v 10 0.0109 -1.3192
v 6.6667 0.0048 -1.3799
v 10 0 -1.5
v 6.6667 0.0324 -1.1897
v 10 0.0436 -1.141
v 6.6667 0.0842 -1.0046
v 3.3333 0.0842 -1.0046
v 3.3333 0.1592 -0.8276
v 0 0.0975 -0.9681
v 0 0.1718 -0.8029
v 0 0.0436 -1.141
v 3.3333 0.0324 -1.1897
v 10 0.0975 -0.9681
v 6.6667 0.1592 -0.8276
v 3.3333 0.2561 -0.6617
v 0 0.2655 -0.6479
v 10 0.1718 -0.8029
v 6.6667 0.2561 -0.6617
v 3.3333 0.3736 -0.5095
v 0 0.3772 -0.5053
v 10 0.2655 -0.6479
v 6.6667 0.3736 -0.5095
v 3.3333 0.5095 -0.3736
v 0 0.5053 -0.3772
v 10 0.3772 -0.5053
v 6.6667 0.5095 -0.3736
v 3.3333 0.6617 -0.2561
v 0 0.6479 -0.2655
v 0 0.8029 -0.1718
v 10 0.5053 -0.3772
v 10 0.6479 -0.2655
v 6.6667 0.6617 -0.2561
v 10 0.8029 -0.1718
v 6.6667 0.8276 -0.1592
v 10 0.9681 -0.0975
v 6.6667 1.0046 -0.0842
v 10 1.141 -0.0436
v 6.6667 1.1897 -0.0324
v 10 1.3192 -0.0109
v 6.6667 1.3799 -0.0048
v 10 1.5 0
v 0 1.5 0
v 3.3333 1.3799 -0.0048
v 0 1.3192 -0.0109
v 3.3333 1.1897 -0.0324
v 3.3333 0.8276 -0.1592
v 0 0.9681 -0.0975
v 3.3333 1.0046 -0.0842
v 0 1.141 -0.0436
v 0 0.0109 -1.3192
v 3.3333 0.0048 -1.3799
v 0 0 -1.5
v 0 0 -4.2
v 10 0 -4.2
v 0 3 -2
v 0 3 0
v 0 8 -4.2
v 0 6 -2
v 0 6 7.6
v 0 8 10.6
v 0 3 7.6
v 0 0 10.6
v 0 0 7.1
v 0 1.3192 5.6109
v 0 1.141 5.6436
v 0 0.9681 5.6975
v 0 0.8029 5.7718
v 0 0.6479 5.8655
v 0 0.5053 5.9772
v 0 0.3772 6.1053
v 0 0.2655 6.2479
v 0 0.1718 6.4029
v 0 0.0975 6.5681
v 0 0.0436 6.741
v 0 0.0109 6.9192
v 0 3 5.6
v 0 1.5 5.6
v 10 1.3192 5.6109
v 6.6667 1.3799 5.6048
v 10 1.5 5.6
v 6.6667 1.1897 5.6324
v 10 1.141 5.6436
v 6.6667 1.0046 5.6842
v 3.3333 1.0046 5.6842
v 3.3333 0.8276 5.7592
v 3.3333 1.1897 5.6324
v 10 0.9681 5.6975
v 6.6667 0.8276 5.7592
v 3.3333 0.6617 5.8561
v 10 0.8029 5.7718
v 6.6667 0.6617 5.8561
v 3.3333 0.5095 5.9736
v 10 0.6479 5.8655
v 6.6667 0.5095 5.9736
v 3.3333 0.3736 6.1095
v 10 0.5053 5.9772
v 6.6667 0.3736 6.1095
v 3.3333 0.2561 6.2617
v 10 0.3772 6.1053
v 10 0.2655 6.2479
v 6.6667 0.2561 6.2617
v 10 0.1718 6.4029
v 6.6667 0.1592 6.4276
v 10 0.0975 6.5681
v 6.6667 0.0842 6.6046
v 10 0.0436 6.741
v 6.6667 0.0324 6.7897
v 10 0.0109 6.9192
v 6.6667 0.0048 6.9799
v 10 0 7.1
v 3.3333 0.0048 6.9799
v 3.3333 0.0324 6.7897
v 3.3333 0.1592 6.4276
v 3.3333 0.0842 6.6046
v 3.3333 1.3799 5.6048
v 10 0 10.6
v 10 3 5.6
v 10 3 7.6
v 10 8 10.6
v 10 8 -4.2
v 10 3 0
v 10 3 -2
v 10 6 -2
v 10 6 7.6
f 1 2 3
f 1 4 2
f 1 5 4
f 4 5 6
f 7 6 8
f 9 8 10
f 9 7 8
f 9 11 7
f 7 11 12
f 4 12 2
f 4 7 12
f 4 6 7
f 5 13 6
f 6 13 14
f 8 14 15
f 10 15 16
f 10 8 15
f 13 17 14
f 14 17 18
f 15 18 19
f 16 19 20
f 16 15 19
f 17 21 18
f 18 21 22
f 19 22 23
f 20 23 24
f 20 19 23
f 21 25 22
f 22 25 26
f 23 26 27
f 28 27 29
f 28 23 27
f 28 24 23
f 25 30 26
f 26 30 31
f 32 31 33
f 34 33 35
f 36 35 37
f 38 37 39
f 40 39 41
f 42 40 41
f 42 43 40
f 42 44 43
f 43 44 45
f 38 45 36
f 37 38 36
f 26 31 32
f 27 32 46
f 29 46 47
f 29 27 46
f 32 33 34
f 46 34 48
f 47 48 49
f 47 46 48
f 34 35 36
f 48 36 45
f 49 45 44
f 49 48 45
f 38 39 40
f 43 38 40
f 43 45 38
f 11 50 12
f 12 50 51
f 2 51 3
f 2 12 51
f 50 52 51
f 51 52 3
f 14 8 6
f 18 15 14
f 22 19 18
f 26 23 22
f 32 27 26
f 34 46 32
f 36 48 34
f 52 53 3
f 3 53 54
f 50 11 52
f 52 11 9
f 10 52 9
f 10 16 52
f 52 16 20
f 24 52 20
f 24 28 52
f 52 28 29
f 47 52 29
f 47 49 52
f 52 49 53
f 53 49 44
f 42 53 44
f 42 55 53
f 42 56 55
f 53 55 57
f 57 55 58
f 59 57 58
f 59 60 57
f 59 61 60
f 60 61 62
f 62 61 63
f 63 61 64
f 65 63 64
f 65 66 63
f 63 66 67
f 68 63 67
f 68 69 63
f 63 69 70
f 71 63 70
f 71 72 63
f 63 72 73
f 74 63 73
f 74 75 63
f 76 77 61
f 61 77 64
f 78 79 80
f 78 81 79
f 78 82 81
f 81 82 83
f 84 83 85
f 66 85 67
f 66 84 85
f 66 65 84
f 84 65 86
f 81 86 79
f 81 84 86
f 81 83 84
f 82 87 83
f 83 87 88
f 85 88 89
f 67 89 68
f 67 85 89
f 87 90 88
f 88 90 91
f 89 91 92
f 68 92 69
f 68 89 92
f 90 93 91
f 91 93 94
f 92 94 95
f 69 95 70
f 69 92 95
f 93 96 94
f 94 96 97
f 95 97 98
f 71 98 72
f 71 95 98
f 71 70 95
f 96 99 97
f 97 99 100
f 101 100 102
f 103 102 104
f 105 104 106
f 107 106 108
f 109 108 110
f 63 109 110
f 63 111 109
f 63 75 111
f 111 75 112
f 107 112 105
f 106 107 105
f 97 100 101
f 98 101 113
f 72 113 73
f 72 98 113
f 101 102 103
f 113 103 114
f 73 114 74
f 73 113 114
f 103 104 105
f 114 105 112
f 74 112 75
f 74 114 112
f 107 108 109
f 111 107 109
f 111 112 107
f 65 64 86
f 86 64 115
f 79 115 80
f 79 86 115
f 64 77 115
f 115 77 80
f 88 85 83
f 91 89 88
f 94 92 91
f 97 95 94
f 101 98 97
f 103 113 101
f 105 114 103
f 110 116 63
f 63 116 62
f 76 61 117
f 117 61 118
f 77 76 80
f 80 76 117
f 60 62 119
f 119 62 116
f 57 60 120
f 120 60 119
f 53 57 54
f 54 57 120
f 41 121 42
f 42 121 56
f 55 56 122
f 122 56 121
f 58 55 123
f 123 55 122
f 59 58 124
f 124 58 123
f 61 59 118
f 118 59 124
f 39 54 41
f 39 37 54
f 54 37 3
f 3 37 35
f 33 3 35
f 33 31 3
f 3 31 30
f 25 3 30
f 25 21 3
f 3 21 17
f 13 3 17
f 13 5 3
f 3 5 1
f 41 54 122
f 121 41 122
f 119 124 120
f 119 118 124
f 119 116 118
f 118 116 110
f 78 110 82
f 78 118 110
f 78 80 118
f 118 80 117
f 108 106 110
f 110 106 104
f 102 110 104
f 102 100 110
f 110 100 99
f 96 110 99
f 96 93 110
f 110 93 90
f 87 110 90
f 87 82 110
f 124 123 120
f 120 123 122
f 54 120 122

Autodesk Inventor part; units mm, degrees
ref_plane "YZ Plane" through (0, 0, 0) normal (1, 0, 0) x (0, 1, 0)
ref_plane "XZ Plane" through (0, 0, 0) normal (0, 1, 0) x (-1, 0, 0)
ref_plane "XY Plane" through (0, 0, 0) normal (0, 0, 1) x (1, 0, 0)
sketch "Sketch4" plane through (0, 0, 0) normal (1, 0, 0) x (0, 1, 0)
  line L0 (6, 7.6) -> (3, 7.6)
  line L1 (3, 7.6) -> (3, 5.6)
  line L2 (3, 5.6) -> (0, 5.6)
  line L3 (0, 0) -> (3, 0)
  line L4 (3, 0) -> (3, -2)
  line L5 (3, -2) -> (6, -2)
  line L6 (6, -2) -> (6, 7.6)
  line L7 (8, 10.6) -> (0, 10.6)
  line L8 (0, 10.6) -> (0, 7.8)
  line L9 (0, 7.8) -> (0, 7.8)
  line L10 (0, -4.2) -> (8, -4.2)
  line L11 (8, -4.2) -> (8, 10.6)
  line L12 (0, 7.8) -> (0, 5.6)
  line L13 (0.2401, 0) -> (0, 0)
  line L14 (0, 0) -> (0, -4.2)
  point P0 (4.5, 7.6)
  dimension "d23" = 2
  dimension "d24" = 3
  dimension "d28" = 2
  dimension "d29" = 5.6
  dimension "d31" = 3
extrude "Extrusion3" add sketch "Sketch4" along normal blind 10
fillet "Fillet6" radius 1.5 2 edges at (5, 0, 5.6) (5, 0, 0)
properties part number "guia"
